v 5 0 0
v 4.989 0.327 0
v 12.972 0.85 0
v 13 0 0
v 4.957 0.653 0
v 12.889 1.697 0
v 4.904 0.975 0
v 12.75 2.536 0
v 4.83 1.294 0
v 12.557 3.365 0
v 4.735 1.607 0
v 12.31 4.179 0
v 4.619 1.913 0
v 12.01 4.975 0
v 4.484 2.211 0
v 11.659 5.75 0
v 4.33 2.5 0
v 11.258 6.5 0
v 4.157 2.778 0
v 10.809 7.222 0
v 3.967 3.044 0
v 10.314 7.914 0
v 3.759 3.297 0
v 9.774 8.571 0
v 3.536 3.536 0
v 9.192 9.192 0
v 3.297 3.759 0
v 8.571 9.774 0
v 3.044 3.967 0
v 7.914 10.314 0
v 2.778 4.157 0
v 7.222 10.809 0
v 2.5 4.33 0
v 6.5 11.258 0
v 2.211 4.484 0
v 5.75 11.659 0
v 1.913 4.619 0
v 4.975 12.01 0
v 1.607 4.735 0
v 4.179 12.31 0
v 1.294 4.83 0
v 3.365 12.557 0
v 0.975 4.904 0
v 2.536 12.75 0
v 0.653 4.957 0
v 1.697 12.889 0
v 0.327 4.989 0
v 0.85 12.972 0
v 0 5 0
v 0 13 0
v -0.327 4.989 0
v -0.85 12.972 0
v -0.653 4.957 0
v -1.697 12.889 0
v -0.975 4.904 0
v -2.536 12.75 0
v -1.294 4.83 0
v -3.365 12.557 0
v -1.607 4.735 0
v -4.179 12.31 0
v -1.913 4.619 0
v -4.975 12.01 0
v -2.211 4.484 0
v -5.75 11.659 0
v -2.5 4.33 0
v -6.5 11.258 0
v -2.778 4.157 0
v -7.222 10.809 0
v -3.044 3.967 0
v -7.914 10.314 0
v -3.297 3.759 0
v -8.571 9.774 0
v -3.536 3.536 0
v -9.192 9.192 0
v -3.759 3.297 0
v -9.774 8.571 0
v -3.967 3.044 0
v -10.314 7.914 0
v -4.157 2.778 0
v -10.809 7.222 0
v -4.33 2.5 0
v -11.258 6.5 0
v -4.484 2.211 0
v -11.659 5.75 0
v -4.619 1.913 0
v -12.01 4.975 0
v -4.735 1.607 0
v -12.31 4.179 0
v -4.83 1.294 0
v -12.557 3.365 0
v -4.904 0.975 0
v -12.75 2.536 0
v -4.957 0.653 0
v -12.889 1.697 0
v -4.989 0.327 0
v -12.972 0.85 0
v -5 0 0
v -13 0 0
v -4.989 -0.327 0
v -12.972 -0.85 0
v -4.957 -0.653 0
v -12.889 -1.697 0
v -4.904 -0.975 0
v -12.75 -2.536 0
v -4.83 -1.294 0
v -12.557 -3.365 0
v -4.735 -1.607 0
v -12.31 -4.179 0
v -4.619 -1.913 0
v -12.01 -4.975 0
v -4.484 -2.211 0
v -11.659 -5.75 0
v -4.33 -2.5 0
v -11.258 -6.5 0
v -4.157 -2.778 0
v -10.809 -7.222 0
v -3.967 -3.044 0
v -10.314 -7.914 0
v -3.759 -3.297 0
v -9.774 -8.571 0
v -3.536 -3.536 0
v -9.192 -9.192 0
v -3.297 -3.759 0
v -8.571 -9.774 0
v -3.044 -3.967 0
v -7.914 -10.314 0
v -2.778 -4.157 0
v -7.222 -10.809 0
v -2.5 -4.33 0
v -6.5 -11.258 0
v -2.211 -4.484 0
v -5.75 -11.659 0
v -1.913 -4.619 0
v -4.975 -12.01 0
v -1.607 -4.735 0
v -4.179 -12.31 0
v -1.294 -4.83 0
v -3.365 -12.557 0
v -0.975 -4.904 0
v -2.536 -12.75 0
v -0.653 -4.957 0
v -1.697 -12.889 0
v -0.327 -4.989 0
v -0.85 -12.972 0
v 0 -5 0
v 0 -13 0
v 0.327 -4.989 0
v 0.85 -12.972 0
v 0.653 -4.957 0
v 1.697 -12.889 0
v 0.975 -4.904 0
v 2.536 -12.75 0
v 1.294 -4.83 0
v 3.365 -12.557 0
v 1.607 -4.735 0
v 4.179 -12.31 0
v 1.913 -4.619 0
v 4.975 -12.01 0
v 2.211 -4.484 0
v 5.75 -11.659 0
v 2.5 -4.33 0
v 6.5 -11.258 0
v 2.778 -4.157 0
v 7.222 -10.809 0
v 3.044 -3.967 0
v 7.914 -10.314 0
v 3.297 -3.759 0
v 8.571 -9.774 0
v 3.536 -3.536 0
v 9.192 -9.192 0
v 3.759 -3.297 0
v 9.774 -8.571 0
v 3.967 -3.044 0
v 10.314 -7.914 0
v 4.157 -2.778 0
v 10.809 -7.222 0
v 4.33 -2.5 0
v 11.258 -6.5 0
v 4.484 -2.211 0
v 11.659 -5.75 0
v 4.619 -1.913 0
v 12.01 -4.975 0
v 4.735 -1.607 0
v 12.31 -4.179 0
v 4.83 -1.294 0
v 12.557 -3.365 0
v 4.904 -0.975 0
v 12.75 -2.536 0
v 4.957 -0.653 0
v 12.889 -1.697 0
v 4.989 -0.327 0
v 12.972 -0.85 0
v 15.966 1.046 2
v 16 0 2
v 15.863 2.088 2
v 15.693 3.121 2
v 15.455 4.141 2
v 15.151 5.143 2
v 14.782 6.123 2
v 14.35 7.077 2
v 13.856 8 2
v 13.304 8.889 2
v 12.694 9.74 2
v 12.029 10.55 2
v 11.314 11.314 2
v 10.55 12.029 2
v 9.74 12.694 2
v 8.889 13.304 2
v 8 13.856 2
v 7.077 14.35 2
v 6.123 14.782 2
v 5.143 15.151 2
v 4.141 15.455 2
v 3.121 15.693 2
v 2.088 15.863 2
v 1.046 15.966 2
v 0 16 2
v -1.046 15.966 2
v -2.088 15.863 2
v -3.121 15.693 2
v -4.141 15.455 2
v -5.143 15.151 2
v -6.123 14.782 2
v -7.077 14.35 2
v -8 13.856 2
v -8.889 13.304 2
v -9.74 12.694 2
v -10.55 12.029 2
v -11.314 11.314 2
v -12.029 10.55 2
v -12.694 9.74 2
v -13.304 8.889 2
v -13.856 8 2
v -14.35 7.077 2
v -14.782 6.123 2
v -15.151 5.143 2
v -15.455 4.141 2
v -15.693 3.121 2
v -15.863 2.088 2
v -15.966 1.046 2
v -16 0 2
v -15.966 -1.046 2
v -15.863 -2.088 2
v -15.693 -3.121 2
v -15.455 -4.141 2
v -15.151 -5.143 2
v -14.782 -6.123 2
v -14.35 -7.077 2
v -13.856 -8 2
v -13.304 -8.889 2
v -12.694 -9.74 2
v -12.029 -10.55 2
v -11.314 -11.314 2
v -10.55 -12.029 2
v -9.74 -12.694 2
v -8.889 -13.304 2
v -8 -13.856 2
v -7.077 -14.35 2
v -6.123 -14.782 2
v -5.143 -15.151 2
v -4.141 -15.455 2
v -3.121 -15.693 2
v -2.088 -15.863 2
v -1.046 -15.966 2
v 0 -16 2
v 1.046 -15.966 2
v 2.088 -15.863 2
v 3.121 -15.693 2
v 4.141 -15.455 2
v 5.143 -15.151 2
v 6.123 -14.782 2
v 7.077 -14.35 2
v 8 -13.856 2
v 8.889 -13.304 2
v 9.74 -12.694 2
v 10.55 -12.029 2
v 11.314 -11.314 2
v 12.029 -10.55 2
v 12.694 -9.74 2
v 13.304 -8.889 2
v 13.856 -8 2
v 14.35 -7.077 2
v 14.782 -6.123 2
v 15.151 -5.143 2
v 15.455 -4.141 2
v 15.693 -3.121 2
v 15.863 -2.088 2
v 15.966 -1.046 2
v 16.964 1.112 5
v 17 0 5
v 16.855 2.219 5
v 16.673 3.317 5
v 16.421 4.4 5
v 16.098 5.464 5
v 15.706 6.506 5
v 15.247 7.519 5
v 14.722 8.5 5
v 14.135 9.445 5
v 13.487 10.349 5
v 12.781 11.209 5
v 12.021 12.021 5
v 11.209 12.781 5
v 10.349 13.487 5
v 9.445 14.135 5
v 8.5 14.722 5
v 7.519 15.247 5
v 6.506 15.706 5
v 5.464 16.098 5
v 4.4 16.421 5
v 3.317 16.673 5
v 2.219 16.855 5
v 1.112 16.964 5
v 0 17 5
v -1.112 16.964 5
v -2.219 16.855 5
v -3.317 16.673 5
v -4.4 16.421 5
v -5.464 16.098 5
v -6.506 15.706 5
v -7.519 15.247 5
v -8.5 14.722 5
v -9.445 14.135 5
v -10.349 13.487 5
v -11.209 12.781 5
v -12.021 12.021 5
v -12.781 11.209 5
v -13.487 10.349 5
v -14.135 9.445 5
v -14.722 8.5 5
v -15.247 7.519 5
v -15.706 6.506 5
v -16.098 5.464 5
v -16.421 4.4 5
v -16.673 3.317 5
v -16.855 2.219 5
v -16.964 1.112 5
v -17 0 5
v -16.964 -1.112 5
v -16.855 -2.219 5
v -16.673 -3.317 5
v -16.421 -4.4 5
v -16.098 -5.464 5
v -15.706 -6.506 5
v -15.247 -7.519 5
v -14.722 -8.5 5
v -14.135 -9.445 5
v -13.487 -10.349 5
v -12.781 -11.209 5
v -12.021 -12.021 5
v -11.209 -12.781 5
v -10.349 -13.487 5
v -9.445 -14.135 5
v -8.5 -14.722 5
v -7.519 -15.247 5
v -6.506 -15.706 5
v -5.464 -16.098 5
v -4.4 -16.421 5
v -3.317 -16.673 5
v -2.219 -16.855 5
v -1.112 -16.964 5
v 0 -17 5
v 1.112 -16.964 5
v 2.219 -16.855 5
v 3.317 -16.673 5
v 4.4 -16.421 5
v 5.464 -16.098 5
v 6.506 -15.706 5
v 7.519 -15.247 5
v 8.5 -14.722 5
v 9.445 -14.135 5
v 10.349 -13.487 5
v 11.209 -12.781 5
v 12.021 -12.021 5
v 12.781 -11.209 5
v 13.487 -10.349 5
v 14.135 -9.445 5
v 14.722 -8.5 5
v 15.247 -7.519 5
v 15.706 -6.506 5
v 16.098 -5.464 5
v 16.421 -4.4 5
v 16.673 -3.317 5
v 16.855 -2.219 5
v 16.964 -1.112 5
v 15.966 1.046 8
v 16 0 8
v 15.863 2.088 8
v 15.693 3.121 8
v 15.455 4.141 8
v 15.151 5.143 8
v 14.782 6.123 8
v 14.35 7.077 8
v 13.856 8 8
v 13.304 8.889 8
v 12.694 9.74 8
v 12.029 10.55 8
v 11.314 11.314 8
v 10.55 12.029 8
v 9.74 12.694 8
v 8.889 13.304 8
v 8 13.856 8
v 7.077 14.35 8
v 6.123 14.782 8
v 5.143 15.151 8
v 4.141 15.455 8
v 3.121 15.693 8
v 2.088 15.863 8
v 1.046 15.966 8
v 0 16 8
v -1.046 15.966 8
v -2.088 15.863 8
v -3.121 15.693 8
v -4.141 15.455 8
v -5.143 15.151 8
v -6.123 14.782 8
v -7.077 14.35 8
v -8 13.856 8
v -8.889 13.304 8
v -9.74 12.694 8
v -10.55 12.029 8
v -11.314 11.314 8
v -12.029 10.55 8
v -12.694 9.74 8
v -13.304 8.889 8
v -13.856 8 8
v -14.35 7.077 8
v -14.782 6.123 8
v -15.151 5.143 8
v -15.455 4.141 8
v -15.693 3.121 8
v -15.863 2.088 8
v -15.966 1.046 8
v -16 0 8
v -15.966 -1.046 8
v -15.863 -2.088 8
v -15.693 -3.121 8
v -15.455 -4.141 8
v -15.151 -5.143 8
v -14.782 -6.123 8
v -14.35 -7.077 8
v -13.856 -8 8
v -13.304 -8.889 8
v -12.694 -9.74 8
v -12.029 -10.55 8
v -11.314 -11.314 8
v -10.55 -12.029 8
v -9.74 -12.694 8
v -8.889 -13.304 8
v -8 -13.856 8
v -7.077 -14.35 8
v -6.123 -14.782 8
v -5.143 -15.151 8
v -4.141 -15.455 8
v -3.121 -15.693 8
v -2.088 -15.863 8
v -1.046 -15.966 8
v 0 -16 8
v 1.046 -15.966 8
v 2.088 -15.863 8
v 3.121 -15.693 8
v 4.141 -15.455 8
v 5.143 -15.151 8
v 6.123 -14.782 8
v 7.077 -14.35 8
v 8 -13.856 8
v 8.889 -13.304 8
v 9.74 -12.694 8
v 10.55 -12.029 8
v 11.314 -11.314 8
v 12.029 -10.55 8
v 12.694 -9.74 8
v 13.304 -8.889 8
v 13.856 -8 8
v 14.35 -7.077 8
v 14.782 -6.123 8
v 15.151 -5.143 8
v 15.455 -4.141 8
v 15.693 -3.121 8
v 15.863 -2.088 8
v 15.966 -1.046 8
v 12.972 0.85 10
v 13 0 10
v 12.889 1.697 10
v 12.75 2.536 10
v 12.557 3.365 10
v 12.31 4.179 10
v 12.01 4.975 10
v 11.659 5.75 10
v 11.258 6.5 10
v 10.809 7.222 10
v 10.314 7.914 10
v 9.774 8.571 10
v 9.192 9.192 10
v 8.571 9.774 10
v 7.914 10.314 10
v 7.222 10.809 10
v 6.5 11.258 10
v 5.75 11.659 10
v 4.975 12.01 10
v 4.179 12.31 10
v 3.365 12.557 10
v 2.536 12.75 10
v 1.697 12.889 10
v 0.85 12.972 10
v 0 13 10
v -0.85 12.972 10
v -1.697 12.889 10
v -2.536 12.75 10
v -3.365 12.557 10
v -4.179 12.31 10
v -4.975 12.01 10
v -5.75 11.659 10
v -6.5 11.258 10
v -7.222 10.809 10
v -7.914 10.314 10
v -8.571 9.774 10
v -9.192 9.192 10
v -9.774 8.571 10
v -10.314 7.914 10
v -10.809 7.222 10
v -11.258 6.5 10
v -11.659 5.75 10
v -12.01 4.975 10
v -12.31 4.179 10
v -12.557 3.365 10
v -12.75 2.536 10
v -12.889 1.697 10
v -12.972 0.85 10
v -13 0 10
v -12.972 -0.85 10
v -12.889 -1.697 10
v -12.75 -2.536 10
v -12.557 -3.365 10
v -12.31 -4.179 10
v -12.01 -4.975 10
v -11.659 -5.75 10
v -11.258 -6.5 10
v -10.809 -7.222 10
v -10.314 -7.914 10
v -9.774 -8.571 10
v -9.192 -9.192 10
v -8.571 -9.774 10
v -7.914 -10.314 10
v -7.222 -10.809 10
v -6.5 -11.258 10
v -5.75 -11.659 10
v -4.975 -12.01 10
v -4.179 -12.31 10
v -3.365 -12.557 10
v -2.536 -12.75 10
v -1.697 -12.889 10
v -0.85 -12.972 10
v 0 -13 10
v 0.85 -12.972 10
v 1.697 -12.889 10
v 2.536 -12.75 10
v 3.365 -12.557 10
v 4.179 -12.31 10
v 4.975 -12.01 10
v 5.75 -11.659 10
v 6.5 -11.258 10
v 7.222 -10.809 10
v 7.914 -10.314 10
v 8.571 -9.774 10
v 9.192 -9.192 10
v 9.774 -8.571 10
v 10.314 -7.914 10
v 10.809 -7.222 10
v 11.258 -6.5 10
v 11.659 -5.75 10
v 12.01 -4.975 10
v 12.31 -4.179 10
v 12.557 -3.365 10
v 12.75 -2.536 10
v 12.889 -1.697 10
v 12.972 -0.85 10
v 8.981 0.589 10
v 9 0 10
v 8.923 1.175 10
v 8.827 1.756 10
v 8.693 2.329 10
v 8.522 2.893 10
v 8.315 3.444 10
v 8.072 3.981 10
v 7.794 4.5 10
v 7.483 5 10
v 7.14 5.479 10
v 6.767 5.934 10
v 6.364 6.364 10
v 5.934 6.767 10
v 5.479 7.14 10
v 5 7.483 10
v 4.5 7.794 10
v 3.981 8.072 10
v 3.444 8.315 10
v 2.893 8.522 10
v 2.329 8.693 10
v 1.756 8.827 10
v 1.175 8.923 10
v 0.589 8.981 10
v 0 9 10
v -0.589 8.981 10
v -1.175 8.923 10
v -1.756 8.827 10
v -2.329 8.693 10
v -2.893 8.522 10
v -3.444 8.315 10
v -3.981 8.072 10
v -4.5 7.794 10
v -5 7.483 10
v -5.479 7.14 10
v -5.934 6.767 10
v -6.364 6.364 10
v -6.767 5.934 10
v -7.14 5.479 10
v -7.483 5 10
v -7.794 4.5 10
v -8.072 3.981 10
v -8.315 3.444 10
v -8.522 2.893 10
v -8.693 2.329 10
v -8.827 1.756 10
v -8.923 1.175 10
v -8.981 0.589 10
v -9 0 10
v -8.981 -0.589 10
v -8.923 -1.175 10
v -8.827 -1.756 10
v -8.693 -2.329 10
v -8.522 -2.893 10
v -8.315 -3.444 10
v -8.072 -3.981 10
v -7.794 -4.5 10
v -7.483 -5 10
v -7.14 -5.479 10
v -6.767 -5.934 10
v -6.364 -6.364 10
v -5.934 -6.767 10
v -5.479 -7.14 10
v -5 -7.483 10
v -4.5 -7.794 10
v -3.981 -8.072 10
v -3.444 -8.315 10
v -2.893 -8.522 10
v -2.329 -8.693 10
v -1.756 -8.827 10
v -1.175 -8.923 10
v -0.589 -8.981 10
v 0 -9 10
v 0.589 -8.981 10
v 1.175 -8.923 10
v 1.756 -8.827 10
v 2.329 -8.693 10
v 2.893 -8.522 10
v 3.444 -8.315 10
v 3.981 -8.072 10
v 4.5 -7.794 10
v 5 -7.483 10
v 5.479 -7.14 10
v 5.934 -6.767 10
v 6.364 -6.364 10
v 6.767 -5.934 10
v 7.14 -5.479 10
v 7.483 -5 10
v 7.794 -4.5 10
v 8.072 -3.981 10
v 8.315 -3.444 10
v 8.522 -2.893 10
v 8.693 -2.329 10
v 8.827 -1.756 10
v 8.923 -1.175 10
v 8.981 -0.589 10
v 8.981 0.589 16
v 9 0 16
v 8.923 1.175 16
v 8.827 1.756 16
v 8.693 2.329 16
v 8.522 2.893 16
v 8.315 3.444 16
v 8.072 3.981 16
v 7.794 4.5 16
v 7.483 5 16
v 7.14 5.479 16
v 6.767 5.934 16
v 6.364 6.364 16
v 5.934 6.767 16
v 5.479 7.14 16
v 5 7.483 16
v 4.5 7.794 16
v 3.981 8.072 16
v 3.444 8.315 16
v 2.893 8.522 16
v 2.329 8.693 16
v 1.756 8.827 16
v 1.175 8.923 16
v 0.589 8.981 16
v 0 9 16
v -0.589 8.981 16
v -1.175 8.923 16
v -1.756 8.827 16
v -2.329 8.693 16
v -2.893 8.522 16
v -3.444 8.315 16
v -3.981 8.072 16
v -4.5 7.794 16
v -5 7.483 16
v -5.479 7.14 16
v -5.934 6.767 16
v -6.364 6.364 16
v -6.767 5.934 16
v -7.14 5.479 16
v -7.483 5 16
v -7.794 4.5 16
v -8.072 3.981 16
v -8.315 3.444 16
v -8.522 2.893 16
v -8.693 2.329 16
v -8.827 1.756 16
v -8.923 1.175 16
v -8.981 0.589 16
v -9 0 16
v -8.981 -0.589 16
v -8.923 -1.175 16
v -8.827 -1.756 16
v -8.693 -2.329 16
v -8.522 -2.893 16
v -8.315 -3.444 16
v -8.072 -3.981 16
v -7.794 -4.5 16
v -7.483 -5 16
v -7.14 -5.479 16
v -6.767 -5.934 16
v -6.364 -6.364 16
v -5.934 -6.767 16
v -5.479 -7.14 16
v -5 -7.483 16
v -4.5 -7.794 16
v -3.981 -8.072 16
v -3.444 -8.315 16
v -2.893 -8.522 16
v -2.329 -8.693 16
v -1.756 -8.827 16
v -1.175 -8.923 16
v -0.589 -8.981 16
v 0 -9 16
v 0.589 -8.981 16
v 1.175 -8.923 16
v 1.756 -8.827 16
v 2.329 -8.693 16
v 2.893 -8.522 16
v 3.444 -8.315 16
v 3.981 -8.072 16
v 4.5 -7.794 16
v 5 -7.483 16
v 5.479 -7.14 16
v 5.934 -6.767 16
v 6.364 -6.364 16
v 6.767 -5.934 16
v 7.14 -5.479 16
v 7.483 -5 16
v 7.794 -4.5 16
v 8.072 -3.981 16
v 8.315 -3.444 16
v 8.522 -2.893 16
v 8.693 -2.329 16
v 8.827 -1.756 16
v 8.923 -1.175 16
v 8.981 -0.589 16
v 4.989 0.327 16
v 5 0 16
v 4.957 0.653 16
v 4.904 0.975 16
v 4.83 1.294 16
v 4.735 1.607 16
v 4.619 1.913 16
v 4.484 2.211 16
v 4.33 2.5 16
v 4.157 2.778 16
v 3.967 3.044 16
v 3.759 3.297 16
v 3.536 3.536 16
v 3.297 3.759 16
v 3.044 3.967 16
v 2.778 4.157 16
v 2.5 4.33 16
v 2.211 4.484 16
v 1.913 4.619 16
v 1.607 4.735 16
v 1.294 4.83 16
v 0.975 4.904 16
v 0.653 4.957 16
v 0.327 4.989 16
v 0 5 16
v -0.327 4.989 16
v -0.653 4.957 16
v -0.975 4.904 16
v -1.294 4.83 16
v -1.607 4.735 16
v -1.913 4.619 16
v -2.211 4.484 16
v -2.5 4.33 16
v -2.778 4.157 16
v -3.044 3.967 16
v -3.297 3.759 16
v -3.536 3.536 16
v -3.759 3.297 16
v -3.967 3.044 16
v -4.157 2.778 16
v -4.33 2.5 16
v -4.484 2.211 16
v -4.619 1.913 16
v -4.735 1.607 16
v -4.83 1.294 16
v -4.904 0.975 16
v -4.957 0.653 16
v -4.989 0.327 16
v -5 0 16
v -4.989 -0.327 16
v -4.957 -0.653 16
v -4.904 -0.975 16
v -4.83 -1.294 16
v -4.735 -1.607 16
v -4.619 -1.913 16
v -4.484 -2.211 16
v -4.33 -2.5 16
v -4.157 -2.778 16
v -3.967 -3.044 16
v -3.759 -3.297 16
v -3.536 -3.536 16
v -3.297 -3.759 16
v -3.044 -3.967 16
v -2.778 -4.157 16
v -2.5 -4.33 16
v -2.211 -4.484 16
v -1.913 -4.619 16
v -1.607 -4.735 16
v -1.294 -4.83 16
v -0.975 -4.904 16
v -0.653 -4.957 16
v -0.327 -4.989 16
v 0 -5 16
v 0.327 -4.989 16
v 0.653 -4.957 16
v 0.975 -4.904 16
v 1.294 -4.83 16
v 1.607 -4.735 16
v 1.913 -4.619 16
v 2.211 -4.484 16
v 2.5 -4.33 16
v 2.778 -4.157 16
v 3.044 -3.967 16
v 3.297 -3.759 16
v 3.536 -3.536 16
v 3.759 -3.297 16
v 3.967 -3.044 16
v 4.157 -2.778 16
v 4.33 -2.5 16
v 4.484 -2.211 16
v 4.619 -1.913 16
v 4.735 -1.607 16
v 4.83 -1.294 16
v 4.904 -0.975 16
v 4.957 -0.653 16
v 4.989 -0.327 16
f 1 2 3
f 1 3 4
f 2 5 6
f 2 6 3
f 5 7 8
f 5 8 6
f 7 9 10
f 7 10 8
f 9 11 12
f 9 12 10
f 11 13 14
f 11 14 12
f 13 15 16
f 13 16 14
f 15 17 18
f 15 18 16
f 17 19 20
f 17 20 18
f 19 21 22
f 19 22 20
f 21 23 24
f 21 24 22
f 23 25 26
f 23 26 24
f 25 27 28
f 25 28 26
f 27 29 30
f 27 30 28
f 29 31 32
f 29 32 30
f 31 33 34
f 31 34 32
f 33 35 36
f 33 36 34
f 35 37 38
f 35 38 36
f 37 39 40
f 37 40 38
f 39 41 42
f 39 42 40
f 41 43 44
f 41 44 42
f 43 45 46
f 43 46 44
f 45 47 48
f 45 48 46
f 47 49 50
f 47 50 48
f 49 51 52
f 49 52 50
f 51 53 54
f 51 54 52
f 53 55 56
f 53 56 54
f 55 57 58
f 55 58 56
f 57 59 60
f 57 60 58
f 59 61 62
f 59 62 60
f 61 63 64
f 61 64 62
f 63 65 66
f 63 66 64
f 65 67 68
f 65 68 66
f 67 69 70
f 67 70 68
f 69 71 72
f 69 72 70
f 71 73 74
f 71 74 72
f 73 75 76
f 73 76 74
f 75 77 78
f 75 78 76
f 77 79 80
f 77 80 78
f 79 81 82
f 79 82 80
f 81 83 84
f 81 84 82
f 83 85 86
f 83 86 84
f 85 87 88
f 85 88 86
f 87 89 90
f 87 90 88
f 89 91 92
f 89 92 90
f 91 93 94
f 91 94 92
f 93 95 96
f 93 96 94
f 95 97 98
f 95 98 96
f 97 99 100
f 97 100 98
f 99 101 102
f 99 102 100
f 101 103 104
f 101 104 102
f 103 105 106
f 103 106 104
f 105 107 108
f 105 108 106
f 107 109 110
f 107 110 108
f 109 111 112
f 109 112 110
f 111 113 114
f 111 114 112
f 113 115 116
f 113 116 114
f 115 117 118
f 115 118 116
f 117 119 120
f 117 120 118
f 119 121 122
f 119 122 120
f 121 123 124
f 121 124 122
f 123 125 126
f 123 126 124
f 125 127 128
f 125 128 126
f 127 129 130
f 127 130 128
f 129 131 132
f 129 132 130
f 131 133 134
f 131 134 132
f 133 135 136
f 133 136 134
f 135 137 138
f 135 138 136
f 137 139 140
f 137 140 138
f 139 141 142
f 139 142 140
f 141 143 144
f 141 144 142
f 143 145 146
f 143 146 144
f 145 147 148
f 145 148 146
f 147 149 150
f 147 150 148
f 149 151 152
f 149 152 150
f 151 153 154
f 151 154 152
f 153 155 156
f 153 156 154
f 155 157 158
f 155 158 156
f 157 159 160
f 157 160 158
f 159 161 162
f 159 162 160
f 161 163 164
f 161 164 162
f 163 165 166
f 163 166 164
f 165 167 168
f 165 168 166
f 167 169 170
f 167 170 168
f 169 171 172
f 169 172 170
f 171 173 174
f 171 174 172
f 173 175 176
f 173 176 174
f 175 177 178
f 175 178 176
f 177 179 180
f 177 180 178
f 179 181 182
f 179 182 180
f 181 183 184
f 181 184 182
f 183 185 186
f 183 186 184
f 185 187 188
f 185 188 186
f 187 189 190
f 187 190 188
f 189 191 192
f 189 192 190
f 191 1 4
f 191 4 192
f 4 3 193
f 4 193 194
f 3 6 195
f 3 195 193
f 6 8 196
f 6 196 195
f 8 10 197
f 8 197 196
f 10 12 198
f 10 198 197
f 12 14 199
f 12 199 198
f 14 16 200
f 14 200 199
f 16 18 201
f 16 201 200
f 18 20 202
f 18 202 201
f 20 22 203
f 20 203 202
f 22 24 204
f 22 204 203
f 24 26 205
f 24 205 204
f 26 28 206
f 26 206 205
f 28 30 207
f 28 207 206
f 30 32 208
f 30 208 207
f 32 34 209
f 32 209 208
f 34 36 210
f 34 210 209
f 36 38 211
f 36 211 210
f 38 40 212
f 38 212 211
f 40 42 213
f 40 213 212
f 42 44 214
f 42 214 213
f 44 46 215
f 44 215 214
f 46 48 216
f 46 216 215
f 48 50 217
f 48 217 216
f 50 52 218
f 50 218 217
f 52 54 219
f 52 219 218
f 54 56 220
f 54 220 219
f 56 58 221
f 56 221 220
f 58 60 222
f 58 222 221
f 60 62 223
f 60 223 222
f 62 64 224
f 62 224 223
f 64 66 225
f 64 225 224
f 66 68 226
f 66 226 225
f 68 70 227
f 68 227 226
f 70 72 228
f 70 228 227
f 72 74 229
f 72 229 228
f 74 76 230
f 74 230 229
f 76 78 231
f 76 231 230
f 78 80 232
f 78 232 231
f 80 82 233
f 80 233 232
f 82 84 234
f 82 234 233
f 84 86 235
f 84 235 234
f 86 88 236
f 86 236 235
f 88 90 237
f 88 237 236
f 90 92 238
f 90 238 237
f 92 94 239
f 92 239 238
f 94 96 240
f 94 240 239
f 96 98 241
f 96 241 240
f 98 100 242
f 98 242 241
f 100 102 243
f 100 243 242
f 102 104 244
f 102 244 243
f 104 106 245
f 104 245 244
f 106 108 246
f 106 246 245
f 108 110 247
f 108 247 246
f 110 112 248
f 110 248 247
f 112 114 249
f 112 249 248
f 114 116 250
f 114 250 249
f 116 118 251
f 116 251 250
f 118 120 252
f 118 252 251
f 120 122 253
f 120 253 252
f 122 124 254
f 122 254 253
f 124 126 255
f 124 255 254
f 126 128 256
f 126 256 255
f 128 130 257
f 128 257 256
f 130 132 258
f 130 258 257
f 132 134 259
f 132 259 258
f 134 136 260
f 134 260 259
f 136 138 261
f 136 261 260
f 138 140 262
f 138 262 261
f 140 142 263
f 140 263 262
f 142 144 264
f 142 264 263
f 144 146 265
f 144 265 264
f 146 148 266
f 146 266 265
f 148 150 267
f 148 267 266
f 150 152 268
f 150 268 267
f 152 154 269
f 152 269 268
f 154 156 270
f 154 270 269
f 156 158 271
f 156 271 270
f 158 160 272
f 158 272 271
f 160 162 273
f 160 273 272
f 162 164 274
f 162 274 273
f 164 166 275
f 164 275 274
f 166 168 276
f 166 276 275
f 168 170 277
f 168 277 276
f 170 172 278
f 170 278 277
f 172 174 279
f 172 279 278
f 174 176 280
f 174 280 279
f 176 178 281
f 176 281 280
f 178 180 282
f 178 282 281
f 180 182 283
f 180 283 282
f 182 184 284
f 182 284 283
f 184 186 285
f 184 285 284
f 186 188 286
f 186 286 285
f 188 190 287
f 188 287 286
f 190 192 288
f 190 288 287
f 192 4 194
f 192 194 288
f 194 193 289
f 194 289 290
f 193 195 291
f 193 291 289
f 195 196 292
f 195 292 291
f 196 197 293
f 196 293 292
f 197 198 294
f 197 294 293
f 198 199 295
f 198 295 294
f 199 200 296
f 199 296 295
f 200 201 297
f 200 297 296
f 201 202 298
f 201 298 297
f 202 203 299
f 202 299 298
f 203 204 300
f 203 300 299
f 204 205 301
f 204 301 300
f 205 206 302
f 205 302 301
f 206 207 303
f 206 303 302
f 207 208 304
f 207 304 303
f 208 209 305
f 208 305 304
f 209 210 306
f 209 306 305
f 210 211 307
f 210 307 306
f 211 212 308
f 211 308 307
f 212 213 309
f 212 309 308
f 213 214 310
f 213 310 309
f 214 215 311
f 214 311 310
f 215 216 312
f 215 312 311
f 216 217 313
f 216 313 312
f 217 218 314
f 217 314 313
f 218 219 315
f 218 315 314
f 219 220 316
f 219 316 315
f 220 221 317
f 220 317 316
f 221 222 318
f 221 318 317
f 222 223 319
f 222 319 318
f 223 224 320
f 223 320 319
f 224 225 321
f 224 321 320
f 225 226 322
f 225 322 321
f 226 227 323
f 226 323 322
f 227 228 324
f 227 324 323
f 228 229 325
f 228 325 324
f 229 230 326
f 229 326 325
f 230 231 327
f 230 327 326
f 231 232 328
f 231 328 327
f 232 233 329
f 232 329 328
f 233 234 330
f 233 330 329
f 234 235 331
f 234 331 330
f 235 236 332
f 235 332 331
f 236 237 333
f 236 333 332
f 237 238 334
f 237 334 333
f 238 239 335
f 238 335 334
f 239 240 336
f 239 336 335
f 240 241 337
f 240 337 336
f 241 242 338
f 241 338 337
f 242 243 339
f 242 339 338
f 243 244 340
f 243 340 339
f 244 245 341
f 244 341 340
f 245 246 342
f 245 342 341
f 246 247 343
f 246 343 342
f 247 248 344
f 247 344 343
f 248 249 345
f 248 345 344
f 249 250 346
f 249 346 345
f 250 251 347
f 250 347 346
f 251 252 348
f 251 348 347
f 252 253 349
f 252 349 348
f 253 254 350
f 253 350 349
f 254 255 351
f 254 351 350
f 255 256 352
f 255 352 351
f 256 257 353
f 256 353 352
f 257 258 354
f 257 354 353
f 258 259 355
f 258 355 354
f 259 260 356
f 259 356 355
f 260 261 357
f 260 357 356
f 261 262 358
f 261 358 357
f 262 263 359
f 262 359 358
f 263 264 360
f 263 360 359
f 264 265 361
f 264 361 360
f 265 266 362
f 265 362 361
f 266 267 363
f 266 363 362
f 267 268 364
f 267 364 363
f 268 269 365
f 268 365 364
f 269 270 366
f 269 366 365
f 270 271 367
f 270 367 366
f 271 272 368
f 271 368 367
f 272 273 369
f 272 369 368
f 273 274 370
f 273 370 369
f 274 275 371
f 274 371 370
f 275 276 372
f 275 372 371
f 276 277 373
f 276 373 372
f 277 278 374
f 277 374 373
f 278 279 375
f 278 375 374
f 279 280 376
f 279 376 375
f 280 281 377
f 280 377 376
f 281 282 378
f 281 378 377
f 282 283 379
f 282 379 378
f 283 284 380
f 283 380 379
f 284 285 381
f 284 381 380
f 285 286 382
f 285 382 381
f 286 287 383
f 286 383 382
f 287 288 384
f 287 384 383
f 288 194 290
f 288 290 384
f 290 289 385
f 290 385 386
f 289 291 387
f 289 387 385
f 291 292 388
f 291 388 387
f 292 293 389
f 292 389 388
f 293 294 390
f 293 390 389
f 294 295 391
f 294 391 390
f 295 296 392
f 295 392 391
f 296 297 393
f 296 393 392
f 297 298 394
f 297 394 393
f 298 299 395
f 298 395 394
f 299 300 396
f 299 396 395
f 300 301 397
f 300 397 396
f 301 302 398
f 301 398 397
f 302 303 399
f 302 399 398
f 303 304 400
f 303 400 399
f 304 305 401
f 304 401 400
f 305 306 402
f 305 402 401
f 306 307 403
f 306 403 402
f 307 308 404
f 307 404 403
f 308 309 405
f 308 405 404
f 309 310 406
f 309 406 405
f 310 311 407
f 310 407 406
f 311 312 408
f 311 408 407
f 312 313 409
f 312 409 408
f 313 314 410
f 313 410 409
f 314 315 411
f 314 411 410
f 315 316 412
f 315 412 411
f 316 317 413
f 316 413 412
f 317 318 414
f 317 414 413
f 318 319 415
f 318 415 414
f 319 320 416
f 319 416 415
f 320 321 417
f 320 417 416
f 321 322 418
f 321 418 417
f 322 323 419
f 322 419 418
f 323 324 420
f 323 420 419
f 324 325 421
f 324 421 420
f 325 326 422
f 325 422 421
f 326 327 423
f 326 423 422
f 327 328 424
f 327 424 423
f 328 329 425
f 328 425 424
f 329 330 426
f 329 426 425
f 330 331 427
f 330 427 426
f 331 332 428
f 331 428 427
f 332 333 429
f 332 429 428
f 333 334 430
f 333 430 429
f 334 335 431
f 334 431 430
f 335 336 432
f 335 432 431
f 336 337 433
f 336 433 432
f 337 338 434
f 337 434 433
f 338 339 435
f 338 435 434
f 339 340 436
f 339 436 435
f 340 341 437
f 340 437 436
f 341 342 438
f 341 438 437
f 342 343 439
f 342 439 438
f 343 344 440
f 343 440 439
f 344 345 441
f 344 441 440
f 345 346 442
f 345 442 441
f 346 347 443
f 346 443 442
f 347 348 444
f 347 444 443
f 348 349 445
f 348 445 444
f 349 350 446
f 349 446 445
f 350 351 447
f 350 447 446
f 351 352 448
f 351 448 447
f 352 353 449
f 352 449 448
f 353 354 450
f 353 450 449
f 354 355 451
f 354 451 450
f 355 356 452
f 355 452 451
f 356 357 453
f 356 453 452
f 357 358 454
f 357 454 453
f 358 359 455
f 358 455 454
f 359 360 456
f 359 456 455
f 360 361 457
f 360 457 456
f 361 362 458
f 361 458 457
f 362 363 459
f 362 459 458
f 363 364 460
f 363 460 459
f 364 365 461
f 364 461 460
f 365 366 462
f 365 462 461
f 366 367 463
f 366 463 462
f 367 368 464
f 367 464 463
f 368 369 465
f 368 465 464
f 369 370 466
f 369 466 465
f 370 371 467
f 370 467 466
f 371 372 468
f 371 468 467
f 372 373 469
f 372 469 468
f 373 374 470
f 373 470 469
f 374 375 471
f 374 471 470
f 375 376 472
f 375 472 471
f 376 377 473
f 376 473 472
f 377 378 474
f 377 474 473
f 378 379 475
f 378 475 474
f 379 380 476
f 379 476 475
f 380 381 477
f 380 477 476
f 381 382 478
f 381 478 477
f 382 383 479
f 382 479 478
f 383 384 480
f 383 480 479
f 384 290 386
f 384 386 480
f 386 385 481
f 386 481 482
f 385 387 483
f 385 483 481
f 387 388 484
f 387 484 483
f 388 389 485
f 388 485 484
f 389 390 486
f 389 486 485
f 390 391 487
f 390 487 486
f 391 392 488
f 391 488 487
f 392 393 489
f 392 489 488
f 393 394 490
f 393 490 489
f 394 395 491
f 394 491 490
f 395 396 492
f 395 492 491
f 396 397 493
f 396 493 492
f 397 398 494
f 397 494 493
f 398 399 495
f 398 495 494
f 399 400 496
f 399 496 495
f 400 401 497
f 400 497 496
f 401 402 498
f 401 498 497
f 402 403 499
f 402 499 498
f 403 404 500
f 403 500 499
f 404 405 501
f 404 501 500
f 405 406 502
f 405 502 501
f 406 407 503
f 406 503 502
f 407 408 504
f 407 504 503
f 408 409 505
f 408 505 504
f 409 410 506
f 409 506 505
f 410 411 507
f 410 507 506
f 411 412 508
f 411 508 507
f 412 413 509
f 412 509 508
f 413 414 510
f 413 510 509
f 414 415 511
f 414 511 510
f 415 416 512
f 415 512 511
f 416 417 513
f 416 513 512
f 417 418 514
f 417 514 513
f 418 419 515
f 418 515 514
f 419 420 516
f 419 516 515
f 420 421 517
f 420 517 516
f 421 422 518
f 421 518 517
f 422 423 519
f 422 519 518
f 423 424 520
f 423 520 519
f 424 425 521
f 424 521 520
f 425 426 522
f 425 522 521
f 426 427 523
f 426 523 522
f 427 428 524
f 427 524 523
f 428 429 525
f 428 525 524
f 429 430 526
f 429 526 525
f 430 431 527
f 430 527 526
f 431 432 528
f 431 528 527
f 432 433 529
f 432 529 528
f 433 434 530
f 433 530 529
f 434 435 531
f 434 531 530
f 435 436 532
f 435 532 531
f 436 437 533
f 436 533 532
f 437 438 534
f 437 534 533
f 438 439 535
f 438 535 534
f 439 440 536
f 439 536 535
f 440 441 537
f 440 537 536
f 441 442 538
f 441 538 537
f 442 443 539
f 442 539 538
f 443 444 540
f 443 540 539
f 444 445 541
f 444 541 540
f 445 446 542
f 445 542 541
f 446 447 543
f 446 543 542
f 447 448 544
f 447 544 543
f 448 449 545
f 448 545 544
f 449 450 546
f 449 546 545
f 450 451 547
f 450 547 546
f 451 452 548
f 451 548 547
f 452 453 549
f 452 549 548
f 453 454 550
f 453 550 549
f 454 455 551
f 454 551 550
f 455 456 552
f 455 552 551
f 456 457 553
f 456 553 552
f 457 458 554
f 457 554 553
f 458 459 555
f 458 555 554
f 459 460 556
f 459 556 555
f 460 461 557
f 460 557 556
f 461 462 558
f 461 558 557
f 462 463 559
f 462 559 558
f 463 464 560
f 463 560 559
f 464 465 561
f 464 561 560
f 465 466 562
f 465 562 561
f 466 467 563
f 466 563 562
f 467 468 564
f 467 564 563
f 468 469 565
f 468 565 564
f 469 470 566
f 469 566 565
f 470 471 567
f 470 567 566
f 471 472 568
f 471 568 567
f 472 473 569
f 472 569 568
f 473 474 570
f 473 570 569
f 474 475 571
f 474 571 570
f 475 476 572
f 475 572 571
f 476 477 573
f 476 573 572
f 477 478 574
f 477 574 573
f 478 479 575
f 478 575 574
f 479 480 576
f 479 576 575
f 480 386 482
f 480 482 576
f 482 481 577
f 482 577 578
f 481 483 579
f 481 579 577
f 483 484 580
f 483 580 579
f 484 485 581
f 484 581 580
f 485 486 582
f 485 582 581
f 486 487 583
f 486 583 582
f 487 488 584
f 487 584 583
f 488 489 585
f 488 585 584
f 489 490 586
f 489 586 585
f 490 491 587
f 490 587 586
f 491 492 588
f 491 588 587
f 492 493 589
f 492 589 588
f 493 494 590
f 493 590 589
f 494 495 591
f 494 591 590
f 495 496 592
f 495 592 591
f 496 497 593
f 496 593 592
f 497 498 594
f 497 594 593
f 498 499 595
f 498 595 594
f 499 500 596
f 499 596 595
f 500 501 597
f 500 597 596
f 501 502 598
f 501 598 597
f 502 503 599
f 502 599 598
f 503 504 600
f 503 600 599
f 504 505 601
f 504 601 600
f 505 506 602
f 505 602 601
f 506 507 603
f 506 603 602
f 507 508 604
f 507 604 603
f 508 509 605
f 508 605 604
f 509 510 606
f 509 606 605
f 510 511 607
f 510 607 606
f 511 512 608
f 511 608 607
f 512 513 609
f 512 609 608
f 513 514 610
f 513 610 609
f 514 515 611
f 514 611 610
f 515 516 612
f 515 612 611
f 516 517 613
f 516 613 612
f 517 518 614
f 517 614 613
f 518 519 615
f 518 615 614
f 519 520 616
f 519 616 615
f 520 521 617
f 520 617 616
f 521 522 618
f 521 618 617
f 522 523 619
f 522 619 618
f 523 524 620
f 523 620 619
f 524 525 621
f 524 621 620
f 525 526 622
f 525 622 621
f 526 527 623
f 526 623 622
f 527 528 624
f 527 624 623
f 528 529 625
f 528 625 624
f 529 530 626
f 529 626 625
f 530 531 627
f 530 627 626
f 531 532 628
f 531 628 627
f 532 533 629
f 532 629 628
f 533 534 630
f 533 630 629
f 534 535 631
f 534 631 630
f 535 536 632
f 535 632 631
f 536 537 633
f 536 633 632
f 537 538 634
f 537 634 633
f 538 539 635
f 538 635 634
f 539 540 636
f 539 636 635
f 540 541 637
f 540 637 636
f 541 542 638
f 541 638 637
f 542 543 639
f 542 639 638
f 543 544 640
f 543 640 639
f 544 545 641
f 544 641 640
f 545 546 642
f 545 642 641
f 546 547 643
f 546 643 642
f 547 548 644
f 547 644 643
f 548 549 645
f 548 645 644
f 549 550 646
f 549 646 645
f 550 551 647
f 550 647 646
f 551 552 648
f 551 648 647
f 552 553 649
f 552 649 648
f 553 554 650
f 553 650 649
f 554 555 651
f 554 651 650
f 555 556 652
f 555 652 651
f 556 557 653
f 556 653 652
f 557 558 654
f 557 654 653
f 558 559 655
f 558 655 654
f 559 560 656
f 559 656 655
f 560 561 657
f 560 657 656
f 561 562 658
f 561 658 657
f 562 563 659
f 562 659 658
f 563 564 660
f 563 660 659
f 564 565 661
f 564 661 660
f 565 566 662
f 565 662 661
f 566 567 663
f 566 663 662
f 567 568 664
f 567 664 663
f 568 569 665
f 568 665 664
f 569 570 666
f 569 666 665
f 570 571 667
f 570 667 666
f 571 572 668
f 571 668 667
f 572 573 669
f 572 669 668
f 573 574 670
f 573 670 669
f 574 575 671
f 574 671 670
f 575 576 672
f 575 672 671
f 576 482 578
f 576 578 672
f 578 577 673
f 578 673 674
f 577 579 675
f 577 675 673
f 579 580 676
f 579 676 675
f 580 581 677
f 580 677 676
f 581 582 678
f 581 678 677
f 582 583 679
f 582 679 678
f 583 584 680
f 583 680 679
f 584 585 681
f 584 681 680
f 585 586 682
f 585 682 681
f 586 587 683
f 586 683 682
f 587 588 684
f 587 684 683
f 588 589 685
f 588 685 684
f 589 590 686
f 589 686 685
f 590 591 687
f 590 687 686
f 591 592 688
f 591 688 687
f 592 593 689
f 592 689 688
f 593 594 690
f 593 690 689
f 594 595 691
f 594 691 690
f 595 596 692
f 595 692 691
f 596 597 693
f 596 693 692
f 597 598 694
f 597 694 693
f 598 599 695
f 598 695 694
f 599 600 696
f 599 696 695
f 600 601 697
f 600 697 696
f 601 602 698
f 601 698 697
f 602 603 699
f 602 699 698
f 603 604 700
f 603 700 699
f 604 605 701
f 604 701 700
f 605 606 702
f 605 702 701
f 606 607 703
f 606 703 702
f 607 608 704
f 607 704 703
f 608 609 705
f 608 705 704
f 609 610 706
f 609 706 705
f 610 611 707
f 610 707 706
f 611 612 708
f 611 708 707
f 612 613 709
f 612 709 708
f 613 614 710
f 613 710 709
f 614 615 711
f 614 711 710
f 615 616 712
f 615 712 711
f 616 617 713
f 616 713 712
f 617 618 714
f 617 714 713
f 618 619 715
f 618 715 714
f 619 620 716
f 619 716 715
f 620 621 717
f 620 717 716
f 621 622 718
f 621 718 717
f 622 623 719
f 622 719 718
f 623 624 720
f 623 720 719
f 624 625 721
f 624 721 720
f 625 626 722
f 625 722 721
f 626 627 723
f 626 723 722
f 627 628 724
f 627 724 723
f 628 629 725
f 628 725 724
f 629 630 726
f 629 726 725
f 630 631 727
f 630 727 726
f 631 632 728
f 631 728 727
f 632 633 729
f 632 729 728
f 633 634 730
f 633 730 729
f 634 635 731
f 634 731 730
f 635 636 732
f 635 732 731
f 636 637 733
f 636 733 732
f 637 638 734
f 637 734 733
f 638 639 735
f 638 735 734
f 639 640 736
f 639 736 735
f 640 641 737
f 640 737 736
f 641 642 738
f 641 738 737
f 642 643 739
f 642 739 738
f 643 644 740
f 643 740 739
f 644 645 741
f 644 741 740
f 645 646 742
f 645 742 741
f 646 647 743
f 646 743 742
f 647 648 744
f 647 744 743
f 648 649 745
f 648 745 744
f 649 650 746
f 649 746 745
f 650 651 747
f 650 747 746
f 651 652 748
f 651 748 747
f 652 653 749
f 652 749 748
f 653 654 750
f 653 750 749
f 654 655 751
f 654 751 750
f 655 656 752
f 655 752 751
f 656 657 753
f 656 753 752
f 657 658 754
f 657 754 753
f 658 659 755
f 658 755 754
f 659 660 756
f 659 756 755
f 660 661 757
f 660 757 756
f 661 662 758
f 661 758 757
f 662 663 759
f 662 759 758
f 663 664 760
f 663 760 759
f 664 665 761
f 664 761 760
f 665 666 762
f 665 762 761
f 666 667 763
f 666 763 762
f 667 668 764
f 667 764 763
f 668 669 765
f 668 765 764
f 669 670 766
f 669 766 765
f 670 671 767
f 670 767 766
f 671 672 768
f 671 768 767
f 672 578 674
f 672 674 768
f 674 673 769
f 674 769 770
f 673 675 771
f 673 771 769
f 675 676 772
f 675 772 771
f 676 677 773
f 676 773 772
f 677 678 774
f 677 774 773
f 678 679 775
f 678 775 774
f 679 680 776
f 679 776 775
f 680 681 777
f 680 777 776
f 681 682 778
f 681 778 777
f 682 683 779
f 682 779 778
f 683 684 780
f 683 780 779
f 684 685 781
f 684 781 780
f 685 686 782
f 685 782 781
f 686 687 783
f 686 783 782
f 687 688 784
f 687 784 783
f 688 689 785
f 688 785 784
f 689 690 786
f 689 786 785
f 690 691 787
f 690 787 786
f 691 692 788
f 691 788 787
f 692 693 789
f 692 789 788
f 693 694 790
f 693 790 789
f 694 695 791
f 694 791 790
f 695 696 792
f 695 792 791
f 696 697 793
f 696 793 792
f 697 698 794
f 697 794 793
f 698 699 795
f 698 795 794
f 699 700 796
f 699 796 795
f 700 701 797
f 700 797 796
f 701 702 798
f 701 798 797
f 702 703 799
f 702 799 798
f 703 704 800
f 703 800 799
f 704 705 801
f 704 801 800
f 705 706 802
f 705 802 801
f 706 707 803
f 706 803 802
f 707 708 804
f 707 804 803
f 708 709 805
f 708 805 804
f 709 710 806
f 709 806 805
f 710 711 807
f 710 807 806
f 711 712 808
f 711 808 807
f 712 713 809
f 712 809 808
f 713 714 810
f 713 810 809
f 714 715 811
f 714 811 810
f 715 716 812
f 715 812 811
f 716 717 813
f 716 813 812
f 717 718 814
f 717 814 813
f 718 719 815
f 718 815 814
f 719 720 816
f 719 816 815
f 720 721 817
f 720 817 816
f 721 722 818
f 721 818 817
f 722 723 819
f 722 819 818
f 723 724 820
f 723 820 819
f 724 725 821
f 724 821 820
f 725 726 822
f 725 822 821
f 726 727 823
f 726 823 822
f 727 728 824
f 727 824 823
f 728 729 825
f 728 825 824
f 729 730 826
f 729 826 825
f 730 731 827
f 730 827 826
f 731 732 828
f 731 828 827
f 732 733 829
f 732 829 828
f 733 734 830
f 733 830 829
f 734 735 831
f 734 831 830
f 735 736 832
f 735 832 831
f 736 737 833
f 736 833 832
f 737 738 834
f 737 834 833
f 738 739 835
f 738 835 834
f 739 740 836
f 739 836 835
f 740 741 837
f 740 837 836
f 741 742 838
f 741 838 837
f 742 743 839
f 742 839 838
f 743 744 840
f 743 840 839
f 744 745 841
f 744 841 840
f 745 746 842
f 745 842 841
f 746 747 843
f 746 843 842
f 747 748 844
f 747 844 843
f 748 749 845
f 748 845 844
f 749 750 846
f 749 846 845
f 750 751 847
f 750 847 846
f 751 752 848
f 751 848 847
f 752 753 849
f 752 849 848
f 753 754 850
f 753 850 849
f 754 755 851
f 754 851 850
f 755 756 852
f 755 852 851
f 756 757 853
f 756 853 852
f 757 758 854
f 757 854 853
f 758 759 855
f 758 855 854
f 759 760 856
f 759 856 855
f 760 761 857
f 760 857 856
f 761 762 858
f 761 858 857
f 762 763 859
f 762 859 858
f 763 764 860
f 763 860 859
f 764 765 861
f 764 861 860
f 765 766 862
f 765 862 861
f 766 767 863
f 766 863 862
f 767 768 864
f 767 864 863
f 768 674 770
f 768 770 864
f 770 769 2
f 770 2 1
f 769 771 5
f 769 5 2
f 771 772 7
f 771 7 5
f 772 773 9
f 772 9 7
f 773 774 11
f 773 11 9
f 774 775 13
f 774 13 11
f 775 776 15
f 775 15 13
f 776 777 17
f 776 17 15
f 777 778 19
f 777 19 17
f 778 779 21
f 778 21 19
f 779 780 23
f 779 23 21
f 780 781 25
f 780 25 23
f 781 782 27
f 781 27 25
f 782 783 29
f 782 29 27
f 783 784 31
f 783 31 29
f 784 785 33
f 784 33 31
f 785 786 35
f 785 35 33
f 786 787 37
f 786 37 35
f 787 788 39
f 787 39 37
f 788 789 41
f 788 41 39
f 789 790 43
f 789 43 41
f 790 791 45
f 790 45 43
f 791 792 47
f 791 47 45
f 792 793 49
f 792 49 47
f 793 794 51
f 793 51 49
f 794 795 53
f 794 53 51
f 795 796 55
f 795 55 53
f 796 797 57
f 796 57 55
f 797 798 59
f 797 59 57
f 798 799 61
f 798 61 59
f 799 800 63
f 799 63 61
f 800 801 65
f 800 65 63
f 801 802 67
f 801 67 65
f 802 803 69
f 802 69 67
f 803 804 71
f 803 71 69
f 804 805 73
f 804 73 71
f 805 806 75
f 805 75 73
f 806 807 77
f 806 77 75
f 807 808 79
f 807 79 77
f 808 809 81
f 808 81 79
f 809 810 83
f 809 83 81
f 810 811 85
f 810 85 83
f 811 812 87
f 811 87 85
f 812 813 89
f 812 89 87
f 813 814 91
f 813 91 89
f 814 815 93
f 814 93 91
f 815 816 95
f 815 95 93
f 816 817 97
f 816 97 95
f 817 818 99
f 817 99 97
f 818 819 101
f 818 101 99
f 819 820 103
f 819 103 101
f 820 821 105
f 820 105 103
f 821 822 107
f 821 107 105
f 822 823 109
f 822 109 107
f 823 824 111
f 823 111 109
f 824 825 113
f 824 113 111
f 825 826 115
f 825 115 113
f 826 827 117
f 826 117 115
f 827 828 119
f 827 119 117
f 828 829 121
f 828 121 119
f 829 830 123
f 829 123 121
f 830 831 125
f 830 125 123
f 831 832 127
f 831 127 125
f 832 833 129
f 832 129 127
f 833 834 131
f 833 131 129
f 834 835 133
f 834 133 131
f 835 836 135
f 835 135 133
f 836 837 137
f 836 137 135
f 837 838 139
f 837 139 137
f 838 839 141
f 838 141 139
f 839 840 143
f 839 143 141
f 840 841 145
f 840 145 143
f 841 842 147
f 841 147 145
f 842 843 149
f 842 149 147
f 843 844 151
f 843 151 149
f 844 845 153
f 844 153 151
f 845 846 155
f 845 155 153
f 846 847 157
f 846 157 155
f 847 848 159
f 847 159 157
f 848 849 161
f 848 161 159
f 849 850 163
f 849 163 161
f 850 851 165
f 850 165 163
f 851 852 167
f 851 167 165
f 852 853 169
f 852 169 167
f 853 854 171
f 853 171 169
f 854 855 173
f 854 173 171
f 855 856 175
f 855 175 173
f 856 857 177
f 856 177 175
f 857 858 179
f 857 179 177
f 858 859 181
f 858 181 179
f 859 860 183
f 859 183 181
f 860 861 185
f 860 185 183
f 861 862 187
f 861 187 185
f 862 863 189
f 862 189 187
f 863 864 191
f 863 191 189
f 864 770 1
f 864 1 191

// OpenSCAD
// Original MechIntel educational model. CC0-1.0. Units: mm.
// Not a standardized or load-rated component.
$fn=96;
// Section points: [radius, height], mm. Edit to change the profile.
section=[[5, 0], [13, 0], [16, 2], [17, 5], [16, 8], [13, 10], [9, 10], [9, 16], [5, 16]];
rotate_extrude($fn=96) polygon(points=section);
